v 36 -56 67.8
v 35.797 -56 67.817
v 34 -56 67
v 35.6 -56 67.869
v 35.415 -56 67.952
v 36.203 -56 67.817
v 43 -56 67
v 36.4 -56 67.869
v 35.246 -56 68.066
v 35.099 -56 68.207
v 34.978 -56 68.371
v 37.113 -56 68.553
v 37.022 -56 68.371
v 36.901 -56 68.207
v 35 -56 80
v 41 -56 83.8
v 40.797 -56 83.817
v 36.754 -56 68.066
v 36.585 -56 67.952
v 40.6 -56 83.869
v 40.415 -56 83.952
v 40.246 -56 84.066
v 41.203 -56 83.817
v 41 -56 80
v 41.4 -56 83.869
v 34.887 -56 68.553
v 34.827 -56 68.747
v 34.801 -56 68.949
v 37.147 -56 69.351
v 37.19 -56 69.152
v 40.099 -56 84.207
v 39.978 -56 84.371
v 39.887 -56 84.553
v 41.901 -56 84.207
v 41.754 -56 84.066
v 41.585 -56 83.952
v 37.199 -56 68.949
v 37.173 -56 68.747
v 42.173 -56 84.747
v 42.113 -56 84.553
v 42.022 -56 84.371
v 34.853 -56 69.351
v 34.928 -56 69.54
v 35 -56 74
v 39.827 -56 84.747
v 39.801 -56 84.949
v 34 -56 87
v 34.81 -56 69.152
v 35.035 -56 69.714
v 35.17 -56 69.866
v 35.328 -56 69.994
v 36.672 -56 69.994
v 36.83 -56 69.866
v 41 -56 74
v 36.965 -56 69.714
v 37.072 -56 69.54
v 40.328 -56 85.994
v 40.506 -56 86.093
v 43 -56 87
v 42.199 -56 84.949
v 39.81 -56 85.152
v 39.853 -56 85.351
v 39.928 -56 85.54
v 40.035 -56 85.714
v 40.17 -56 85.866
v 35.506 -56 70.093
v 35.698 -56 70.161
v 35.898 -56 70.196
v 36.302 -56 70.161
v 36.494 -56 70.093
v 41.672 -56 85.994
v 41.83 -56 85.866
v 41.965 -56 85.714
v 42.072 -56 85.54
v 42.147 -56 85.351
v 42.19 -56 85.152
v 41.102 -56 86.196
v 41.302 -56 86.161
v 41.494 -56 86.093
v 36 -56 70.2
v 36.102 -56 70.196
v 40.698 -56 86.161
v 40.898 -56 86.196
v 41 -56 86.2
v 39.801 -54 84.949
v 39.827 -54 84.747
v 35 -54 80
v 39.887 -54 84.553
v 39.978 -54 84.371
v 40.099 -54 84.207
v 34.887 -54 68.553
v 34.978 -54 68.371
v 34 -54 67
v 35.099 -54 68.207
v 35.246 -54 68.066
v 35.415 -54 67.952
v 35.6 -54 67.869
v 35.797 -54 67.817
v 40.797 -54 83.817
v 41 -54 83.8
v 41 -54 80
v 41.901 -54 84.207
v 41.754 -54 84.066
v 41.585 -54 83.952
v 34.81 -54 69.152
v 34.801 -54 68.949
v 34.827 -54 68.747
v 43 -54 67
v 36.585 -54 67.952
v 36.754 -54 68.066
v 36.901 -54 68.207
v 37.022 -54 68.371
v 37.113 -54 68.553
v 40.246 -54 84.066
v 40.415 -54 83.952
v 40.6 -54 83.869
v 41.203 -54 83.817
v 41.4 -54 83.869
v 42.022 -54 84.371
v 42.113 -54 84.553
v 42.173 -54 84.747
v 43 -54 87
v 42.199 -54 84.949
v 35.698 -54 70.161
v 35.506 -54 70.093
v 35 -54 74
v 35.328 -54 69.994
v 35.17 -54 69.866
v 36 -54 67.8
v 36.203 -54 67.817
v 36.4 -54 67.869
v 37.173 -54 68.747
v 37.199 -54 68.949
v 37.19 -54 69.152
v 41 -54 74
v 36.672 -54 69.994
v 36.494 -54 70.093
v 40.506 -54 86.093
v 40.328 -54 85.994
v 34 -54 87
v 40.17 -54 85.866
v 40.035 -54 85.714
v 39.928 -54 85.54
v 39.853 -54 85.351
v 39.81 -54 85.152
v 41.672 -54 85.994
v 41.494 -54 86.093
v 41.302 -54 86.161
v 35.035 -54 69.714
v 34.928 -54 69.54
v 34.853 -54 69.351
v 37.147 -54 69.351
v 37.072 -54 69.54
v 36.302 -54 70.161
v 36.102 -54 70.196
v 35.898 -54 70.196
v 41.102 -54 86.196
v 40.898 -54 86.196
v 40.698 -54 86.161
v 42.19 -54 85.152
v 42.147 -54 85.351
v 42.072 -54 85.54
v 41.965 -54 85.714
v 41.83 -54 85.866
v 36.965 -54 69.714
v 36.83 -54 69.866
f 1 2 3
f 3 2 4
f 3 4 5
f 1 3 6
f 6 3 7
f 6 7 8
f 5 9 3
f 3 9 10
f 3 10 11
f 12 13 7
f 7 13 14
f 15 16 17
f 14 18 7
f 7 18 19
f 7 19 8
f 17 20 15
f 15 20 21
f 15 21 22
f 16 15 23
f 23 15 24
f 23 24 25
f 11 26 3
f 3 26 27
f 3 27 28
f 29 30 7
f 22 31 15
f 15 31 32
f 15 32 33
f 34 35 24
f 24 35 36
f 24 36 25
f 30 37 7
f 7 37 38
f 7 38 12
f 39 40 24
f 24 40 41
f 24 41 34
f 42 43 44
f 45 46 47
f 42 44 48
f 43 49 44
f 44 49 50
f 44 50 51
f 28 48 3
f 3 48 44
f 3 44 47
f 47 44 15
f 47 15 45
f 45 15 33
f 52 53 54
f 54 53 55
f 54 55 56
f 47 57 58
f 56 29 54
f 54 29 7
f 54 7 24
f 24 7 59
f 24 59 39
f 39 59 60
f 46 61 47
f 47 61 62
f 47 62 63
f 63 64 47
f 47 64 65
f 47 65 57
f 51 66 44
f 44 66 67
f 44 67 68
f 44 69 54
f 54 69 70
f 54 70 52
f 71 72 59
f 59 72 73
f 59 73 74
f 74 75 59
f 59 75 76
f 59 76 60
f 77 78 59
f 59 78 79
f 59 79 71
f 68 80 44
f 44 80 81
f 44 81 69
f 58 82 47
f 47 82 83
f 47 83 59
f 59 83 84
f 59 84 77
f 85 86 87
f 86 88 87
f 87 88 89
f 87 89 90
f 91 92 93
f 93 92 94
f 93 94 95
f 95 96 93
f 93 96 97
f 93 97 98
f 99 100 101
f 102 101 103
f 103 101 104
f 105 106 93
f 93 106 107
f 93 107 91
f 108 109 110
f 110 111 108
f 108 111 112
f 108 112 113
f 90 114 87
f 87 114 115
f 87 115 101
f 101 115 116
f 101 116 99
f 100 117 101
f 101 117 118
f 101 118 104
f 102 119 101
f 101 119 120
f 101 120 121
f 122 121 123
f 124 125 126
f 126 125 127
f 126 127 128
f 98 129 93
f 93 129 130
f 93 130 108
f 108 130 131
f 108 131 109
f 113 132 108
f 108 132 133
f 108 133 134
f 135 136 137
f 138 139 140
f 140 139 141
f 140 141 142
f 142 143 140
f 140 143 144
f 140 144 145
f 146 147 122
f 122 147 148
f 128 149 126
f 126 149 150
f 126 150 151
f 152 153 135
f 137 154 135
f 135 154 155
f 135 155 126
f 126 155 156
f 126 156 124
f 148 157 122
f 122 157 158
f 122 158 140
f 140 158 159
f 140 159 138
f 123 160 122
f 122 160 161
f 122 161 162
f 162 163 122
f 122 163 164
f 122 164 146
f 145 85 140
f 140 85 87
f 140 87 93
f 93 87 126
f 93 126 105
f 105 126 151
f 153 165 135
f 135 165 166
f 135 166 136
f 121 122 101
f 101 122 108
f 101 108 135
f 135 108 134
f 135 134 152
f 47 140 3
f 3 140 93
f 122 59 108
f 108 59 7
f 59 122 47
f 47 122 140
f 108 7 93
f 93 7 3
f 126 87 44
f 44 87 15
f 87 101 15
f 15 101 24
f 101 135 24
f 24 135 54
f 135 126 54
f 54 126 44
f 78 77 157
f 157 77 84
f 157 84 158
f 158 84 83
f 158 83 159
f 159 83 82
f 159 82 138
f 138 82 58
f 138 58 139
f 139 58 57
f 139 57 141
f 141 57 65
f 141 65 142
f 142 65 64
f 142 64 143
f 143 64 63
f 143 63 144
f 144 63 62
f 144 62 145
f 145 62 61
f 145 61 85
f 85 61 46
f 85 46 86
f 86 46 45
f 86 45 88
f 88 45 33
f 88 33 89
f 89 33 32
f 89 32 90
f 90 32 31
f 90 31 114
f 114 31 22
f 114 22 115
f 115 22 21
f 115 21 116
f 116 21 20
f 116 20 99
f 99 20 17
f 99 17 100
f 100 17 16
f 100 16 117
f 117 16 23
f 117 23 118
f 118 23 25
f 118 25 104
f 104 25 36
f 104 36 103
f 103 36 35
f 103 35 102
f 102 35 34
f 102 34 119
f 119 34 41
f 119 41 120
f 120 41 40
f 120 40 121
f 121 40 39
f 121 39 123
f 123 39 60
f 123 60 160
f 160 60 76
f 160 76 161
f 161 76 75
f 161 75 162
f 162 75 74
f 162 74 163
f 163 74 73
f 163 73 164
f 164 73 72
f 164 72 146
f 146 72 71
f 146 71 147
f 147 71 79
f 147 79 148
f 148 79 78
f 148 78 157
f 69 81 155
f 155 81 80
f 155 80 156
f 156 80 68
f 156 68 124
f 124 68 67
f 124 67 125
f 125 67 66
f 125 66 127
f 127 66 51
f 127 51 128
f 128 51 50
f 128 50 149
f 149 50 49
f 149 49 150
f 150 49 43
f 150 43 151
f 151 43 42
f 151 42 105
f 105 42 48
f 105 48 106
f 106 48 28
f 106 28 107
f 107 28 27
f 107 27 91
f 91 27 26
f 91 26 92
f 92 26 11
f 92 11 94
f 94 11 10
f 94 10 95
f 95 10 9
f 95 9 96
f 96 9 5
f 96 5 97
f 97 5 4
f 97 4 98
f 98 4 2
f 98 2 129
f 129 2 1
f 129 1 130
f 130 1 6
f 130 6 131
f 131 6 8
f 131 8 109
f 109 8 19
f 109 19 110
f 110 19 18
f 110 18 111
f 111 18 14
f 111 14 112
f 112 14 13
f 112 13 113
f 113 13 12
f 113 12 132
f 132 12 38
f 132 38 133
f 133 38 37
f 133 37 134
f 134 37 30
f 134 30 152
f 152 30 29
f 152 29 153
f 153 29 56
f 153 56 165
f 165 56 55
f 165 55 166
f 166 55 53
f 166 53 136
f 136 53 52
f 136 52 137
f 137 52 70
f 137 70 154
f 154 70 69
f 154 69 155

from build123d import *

# Parameters (mm, degrees)
SKETCH_1_W              = 9
SKETCH_1_H              = 2
CARRIER_1_DEPTH         = 20
SKETCH_2_W              = 6
SKETCH_2_H              = 6
TACT_6X6_POCKET_2_DEPTH = 4
SKETCH_3_R              = 1.2
CARRIER_M2_3_DEPTH      = 4


with BuildPart() as part:
    # Эскиз1 → Carrier_1 (new body)
    with BuildSketch(Plane.XY.offset(67)):
        with Locations((38.5, -55)):
            Rectangle(SKETCH_1_W, SKETCH_1_H)
    extrude(amount=CARRIER_1_DEPTH)

    # Эскиз2 → Tact_6x6_pocket_2 (cut)
    with BuildSketch(Plane(origin=(0, -57, 0), x_dir=(1, 0, 0), z_dir=(0, 1, 0))):
        with Locations((38, -77)):
            Rectangle(SKETCH_2_W, SKETCH_2_H)
    extrude(amount=TACT_6X6_POCKET_2_DEPTH, mode=Mode.SUBTRACT)

    # Эскиз3 → Carrier_M2_3 (cut)
    with BuildSketch(Plane(origin=(0, -57, 0), x_dir=(1, 0, 0), z_dir=(0, 1, 0))):
        with Locations(Location((36, -69, 0), (0, 0, 90))):
            Circle(SKETCH_3_R)
        with Locations(Location((41, -85, 0), (0, 0, 90))):
            Circle(SKETCH_3_R)
    extrude(amount=CARRIER_M2_3_DEPTH, mode=Mode.SUBTRACT)


solid = part.part
